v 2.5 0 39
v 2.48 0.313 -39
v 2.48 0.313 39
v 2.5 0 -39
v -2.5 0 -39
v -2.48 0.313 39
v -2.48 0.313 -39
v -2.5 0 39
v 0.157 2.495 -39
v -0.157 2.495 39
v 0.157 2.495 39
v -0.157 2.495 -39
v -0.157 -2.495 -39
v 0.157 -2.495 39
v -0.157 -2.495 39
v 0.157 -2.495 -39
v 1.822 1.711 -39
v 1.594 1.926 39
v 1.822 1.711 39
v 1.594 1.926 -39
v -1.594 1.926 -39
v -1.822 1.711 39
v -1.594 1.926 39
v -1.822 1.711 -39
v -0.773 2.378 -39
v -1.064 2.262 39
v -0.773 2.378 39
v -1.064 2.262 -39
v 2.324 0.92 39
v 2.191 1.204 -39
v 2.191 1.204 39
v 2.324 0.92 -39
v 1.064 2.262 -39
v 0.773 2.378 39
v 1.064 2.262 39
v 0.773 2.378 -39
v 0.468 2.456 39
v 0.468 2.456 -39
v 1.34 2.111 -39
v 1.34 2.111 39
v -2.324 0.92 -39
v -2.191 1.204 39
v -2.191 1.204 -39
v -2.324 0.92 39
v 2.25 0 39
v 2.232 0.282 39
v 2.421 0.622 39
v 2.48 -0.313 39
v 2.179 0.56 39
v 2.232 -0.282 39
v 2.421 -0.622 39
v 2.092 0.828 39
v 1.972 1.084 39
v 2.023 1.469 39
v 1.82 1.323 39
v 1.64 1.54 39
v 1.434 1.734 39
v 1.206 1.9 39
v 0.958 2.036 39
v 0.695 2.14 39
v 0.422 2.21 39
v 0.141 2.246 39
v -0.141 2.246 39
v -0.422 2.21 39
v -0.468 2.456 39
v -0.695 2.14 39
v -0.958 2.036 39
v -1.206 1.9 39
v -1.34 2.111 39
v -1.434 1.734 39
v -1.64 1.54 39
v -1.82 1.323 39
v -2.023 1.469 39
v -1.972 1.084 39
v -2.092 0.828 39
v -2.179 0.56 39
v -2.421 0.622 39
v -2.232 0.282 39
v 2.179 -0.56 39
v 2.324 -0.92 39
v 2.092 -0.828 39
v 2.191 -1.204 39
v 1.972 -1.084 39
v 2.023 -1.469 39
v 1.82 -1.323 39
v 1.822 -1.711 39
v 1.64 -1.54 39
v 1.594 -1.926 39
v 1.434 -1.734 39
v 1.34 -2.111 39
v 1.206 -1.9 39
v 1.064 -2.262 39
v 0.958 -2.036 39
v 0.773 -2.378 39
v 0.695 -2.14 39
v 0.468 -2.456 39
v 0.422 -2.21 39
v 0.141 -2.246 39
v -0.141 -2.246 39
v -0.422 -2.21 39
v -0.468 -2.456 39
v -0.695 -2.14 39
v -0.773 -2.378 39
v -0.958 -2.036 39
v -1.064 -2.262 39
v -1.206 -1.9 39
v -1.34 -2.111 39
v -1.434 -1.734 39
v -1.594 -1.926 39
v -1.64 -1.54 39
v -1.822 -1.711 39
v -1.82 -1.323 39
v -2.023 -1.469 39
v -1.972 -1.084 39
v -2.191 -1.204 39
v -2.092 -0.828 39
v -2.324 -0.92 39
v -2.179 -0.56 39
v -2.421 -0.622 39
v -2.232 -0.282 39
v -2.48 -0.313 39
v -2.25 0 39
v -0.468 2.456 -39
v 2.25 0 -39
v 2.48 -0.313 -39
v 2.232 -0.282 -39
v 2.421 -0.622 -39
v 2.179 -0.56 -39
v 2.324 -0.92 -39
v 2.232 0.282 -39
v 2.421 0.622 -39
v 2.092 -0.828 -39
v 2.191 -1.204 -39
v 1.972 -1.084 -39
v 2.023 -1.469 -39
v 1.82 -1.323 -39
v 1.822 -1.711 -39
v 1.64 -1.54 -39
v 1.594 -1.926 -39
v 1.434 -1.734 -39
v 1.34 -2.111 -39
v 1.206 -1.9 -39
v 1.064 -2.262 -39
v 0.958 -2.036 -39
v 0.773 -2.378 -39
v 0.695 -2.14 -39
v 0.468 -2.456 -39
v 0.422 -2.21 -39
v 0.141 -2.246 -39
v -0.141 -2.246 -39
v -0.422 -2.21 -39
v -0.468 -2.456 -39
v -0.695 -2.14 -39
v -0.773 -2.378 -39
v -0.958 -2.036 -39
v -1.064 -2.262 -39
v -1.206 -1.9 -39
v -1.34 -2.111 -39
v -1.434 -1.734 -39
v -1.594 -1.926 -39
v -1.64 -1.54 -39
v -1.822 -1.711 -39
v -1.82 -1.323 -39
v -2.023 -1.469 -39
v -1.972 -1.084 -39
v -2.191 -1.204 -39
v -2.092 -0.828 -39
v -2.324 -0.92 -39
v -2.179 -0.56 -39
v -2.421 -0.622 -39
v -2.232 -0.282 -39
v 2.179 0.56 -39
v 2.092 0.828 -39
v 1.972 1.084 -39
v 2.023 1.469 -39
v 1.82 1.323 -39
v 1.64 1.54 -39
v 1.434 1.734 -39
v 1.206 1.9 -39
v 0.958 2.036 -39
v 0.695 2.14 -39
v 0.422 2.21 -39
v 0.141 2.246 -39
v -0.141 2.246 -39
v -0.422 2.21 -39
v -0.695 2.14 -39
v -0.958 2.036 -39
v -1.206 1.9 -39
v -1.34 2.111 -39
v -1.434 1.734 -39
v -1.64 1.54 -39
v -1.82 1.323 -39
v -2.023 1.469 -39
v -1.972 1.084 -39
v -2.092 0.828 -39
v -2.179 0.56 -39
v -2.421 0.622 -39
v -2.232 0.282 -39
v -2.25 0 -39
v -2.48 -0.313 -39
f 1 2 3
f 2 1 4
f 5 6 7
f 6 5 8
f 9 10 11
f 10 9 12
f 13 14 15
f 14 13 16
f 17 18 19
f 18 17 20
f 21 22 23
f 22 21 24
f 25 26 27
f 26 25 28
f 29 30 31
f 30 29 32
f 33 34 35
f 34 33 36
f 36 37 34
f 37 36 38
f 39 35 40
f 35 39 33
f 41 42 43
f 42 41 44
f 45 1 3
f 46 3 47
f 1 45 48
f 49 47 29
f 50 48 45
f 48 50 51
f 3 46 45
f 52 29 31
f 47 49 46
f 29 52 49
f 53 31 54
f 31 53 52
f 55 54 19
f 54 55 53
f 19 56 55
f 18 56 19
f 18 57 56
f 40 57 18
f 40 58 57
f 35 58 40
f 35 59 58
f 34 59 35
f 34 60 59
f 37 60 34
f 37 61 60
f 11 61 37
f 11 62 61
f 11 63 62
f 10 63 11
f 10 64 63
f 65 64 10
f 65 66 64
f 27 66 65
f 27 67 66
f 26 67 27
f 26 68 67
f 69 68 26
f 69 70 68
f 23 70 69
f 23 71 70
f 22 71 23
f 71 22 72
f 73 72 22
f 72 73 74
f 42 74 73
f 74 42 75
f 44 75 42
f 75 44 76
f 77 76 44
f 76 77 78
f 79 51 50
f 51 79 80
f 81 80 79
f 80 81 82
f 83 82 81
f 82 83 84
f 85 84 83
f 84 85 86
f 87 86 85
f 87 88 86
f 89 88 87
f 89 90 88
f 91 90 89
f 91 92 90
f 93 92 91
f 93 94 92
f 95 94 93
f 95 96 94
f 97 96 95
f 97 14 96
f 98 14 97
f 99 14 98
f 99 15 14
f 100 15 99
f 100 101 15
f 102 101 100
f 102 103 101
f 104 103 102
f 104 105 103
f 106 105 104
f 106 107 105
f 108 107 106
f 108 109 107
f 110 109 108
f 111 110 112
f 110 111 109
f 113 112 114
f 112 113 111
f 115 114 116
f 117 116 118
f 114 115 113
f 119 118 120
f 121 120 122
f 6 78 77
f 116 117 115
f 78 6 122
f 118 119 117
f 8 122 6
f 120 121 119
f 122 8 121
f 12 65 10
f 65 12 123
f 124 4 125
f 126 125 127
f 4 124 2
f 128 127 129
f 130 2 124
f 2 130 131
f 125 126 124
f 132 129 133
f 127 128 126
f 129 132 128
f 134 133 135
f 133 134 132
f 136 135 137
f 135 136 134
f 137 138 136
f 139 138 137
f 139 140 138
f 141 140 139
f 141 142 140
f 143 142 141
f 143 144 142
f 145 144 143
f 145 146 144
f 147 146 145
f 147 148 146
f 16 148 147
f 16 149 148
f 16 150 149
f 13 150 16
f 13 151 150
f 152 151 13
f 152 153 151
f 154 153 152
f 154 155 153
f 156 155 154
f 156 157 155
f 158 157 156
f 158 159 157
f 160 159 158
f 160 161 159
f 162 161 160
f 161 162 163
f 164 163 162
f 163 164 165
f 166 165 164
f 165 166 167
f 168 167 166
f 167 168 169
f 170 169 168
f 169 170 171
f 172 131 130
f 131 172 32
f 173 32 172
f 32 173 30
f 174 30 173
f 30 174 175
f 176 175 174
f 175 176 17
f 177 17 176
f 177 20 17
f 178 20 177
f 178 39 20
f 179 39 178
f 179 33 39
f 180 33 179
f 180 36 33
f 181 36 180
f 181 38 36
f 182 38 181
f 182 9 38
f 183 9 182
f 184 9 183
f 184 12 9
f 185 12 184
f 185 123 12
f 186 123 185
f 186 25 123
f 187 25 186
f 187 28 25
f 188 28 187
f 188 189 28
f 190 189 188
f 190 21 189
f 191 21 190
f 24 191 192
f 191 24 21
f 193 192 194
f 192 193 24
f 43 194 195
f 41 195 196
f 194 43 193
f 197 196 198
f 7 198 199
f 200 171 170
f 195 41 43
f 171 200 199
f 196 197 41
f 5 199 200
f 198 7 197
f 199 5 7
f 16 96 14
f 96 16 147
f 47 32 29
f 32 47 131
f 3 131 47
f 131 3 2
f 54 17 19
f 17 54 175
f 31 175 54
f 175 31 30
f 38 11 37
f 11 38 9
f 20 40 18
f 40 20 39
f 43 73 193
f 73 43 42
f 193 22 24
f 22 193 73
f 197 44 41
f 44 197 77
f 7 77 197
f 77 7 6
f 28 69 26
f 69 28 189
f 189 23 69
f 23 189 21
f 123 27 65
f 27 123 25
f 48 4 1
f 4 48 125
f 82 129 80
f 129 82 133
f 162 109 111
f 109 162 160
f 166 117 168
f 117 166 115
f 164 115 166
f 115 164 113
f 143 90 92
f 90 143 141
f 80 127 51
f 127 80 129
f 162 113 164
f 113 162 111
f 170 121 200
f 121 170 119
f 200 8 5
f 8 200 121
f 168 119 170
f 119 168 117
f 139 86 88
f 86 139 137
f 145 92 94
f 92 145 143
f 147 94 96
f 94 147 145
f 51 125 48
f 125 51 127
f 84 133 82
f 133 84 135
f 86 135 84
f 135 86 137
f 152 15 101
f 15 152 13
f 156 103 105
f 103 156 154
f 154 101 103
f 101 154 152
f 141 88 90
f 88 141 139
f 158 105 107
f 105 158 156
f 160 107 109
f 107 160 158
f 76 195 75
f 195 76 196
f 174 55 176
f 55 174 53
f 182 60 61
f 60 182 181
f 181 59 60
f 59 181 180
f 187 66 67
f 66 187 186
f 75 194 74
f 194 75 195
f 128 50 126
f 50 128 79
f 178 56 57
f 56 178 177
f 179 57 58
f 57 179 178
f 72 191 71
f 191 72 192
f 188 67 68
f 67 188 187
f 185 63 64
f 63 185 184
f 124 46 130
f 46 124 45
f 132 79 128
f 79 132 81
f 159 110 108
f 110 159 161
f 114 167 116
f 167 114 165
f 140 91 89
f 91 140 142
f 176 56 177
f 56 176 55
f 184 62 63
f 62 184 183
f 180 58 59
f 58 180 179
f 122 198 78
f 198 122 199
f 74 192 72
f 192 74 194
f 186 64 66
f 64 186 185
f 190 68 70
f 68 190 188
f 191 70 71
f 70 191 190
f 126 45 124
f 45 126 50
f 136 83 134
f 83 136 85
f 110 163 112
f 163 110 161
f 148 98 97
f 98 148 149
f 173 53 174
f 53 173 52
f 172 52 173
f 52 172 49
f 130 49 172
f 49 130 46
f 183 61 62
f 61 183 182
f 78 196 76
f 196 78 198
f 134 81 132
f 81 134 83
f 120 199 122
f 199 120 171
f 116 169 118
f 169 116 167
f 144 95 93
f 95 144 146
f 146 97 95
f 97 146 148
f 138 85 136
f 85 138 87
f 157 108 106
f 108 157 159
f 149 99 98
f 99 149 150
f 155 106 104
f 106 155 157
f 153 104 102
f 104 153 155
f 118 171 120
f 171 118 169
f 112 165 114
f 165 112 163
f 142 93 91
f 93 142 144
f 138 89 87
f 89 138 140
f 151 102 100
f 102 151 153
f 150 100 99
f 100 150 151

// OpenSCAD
$fn = 50;


difference() {
	union() {
		translate(v = [0, 0, -39.0000000000]) {
			cylinder(h = 78, r = 2.5000000000);
		}
	}
	union() {
		translate(v = [0, 0, -100.0000000000]) {
			cylinder(h = 200, r = 2.2500000000);
		}
	}
}
